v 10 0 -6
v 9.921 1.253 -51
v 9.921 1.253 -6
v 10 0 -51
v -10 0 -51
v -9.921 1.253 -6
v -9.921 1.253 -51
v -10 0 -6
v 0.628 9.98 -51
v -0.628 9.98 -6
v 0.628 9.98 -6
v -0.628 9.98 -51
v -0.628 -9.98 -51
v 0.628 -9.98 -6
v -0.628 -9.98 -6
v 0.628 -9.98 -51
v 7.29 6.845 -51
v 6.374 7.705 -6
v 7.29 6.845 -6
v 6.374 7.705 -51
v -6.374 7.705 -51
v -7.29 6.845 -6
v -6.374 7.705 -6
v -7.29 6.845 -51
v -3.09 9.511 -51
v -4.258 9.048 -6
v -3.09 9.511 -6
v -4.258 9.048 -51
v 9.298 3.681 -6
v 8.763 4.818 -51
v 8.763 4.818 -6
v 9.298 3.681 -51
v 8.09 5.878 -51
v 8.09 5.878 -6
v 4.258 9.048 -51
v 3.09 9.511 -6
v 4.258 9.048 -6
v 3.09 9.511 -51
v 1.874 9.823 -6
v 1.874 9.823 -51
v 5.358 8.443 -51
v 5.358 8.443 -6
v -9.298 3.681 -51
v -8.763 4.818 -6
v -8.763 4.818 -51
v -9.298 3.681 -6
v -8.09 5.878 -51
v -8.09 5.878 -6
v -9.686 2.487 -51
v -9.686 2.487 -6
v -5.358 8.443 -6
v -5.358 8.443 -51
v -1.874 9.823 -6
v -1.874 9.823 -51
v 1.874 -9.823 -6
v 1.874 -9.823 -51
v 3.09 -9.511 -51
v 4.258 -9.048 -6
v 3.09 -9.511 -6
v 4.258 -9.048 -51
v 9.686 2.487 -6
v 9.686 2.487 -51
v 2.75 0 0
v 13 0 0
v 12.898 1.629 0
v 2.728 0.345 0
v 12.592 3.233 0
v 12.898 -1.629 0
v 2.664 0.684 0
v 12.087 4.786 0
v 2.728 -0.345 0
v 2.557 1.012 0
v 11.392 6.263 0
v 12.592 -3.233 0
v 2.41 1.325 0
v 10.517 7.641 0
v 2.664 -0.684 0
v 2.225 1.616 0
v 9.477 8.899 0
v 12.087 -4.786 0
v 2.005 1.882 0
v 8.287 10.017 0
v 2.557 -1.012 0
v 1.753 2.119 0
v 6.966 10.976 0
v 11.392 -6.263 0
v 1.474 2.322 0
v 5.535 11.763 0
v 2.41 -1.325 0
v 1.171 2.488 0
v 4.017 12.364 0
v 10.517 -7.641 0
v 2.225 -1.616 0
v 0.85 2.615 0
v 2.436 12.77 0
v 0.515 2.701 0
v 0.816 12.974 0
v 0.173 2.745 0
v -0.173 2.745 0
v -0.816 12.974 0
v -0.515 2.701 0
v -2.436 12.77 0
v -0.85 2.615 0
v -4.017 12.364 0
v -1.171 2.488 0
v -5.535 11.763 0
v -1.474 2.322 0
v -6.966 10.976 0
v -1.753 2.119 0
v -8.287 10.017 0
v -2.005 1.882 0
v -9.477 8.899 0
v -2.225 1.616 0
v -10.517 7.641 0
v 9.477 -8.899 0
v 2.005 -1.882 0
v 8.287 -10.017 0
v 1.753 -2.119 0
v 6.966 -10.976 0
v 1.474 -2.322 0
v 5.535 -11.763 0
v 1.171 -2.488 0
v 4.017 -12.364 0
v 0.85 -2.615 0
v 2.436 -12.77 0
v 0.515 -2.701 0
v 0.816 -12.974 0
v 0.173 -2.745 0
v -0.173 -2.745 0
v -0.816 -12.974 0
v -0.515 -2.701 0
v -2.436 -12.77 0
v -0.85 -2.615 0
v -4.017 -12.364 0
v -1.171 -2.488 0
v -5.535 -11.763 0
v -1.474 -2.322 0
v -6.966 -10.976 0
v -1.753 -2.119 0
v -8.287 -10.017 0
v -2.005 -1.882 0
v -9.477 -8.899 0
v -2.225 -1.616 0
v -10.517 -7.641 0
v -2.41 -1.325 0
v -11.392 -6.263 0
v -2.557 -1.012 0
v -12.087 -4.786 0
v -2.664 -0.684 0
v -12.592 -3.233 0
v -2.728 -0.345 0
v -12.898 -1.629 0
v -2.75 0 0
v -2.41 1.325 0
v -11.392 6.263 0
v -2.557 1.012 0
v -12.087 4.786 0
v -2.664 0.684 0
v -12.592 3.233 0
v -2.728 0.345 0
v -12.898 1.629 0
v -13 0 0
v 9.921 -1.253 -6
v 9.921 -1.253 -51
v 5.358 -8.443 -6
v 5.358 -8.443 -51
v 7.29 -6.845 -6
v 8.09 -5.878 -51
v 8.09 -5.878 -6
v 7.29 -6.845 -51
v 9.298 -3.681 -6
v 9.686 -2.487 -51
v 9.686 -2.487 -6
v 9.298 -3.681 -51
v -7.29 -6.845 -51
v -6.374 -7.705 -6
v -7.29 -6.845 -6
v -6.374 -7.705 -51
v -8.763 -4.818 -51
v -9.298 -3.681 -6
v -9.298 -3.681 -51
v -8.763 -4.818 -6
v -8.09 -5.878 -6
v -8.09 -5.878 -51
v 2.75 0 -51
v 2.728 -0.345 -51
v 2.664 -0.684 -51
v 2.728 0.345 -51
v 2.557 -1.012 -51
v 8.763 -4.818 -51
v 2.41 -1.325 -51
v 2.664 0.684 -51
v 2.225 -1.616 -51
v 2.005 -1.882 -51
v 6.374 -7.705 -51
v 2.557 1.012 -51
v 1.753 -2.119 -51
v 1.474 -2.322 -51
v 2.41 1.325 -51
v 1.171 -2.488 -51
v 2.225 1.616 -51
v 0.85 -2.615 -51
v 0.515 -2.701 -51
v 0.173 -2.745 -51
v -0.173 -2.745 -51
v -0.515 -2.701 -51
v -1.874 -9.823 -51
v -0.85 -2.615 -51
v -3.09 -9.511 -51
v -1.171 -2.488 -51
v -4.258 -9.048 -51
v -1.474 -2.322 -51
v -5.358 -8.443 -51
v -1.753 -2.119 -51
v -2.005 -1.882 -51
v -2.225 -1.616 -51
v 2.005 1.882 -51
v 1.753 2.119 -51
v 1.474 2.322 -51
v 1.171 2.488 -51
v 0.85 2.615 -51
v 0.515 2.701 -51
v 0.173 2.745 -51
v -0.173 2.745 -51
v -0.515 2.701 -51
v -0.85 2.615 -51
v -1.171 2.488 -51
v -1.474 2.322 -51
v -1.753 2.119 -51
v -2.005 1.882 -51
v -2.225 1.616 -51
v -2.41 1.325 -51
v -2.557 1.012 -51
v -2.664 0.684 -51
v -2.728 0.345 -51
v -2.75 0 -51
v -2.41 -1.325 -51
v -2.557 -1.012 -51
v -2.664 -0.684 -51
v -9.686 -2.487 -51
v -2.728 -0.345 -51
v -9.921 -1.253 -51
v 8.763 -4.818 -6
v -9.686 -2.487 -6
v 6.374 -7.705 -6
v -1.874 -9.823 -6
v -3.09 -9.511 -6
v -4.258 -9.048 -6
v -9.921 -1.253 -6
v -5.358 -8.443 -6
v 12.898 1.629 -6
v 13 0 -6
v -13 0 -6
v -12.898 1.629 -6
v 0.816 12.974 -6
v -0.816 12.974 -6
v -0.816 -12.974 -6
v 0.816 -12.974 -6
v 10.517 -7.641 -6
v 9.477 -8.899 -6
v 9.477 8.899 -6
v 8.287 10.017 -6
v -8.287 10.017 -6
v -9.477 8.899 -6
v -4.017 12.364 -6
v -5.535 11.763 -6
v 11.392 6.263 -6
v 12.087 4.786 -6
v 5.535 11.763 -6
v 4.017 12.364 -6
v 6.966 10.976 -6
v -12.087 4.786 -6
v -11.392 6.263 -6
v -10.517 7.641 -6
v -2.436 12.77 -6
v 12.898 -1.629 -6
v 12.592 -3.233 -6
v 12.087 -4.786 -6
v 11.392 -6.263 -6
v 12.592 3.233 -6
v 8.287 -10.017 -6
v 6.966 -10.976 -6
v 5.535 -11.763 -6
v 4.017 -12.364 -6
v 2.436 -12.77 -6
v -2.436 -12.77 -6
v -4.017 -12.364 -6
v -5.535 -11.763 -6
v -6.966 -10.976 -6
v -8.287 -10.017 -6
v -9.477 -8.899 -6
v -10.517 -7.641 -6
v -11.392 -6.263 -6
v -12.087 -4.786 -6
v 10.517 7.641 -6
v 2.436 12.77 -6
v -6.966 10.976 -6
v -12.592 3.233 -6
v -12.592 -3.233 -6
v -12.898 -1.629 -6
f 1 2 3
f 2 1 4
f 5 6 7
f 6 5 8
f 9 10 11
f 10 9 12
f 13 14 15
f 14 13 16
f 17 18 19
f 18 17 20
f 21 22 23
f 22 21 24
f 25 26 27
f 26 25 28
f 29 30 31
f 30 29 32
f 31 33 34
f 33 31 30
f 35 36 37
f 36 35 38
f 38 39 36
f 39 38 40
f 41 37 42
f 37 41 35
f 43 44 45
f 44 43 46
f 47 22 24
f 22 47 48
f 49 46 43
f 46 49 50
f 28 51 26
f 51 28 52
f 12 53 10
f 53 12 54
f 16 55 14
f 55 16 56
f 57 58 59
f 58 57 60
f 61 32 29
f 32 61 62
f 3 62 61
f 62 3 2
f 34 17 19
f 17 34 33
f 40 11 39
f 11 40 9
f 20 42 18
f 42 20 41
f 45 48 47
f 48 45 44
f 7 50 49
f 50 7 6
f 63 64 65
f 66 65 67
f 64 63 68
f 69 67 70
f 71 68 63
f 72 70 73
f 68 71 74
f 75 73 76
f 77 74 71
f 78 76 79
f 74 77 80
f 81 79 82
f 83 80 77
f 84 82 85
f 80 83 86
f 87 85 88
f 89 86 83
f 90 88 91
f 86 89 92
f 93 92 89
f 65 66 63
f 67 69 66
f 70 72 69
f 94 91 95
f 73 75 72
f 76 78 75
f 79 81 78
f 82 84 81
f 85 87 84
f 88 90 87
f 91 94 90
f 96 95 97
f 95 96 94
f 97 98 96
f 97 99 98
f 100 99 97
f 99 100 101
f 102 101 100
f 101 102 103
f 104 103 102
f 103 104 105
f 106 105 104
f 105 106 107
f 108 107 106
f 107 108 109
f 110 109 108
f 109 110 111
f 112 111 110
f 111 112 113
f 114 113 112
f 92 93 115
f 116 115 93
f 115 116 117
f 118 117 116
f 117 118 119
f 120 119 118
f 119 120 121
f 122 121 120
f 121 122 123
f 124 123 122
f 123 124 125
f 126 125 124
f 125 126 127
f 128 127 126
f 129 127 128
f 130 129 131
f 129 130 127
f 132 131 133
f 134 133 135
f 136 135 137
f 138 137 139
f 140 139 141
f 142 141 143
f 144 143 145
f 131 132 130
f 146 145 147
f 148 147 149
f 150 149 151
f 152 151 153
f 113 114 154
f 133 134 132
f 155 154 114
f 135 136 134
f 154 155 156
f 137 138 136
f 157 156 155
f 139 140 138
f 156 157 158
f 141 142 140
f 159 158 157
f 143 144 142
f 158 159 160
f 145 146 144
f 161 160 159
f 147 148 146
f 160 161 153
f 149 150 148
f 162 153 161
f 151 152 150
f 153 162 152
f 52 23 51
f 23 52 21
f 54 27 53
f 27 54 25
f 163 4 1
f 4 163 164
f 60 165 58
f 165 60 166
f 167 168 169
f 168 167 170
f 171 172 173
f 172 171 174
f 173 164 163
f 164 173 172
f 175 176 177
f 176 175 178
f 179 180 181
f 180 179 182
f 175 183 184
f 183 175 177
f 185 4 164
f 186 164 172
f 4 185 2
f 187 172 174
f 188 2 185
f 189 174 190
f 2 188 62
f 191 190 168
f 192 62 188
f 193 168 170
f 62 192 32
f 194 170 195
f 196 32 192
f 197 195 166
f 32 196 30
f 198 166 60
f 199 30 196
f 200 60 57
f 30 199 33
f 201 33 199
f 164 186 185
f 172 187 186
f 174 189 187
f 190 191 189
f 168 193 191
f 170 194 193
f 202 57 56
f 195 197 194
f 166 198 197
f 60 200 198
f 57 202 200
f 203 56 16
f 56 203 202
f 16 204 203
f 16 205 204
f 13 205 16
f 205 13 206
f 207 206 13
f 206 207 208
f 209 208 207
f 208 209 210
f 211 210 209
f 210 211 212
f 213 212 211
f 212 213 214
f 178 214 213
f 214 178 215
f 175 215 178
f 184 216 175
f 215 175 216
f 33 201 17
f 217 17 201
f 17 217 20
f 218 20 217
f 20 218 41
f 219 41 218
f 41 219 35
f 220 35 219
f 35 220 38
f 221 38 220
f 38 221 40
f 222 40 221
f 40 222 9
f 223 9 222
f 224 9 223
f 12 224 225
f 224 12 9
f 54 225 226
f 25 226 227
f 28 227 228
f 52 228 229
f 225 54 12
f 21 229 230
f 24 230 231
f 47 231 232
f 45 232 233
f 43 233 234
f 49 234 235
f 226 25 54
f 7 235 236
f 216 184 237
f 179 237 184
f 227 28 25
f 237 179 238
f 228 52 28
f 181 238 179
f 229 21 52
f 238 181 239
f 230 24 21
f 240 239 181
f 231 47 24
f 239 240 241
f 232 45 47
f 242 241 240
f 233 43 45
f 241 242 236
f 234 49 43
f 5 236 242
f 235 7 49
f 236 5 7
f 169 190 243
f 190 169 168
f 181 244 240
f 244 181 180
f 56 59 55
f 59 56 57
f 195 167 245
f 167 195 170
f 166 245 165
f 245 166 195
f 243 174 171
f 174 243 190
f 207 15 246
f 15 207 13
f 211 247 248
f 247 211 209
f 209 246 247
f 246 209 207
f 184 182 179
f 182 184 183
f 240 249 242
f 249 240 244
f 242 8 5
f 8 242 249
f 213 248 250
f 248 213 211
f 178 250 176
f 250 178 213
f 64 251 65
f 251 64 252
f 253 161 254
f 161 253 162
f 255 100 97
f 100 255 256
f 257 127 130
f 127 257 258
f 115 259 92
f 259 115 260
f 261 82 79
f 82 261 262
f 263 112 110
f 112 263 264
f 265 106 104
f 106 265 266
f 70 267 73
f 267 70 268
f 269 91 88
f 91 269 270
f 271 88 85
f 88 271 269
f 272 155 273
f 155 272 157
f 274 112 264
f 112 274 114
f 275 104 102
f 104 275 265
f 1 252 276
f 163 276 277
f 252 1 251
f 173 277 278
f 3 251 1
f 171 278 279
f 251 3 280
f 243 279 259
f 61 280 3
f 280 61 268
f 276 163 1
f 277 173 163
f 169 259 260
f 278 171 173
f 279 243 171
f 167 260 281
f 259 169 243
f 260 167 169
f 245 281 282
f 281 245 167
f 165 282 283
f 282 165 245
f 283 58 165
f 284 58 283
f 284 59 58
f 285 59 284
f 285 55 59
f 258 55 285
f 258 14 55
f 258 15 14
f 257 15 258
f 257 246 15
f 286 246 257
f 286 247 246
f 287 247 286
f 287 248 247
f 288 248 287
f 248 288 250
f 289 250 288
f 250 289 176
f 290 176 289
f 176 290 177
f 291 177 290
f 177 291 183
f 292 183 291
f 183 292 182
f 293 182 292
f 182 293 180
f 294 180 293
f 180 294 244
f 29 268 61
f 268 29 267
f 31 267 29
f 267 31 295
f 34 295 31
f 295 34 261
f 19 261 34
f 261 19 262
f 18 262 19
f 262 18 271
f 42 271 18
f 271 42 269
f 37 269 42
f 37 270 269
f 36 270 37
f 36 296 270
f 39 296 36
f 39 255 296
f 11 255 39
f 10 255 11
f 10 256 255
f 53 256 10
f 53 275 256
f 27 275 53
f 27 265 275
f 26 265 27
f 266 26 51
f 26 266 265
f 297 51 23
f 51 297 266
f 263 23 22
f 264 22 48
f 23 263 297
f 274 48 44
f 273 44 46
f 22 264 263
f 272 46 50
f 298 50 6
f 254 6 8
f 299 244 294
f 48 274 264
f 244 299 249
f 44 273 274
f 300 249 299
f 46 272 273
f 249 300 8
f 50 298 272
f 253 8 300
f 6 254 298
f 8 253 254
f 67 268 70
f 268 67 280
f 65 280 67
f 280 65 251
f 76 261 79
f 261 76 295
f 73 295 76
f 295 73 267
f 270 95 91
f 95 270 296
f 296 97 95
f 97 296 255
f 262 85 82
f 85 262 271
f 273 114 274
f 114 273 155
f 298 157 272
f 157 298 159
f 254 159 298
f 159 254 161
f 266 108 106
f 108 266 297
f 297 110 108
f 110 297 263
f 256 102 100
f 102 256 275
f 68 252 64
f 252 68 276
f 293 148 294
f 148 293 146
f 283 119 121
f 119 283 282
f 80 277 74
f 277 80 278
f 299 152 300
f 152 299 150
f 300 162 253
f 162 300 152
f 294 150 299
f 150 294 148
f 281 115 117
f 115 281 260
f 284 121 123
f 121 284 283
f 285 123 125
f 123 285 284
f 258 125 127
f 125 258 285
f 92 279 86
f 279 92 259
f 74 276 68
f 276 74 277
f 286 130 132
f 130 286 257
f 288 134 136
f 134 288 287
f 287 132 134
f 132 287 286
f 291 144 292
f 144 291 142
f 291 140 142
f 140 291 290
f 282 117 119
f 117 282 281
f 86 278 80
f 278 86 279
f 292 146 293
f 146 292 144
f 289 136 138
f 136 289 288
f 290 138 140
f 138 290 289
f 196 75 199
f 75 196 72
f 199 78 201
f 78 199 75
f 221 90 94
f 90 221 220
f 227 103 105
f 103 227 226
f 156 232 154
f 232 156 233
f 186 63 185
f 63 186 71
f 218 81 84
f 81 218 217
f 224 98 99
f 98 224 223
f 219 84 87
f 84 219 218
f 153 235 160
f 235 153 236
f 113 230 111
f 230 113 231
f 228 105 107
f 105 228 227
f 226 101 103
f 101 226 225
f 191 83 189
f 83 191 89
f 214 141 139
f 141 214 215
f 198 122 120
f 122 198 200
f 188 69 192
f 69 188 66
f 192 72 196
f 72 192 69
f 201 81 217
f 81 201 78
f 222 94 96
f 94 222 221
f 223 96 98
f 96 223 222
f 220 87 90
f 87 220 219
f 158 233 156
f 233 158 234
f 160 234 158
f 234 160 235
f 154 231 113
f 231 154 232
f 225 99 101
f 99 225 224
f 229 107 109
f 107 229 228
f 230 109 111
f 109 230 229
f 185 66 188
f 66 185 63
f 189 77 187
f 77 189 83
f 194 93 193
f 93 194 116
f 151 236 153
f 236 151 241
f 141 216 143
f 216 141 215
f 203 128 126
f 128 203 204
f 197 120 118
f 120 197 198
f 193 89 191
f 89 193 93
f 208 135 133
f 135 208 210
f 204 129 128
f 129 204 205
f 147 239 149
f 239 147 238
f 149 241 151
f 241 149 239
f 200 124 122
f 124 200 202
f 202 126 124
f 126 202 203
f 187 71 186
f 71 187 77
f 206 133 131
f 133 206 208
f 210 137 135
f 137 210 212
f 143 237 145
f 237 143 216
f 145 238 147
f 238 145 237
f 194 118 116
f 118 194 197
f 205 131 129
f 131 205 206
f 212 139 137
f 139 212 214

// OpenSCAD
$fn = 50;


difference() {
	union() {
		translate(v = [0, 0, -51.0000000000]) {
			cylinder(h = 51, r = 10.0000000000);
		}
		translate(v = [0, 0, -6.0000000000]) {
			cylinder(h = 6, r = 13.0000000000);
		}
	}
	union() {
		#translate(v = [0, 0, -51]) {
			cylinder(h = 51, r = 2.7500000000);
		}
	}
}
